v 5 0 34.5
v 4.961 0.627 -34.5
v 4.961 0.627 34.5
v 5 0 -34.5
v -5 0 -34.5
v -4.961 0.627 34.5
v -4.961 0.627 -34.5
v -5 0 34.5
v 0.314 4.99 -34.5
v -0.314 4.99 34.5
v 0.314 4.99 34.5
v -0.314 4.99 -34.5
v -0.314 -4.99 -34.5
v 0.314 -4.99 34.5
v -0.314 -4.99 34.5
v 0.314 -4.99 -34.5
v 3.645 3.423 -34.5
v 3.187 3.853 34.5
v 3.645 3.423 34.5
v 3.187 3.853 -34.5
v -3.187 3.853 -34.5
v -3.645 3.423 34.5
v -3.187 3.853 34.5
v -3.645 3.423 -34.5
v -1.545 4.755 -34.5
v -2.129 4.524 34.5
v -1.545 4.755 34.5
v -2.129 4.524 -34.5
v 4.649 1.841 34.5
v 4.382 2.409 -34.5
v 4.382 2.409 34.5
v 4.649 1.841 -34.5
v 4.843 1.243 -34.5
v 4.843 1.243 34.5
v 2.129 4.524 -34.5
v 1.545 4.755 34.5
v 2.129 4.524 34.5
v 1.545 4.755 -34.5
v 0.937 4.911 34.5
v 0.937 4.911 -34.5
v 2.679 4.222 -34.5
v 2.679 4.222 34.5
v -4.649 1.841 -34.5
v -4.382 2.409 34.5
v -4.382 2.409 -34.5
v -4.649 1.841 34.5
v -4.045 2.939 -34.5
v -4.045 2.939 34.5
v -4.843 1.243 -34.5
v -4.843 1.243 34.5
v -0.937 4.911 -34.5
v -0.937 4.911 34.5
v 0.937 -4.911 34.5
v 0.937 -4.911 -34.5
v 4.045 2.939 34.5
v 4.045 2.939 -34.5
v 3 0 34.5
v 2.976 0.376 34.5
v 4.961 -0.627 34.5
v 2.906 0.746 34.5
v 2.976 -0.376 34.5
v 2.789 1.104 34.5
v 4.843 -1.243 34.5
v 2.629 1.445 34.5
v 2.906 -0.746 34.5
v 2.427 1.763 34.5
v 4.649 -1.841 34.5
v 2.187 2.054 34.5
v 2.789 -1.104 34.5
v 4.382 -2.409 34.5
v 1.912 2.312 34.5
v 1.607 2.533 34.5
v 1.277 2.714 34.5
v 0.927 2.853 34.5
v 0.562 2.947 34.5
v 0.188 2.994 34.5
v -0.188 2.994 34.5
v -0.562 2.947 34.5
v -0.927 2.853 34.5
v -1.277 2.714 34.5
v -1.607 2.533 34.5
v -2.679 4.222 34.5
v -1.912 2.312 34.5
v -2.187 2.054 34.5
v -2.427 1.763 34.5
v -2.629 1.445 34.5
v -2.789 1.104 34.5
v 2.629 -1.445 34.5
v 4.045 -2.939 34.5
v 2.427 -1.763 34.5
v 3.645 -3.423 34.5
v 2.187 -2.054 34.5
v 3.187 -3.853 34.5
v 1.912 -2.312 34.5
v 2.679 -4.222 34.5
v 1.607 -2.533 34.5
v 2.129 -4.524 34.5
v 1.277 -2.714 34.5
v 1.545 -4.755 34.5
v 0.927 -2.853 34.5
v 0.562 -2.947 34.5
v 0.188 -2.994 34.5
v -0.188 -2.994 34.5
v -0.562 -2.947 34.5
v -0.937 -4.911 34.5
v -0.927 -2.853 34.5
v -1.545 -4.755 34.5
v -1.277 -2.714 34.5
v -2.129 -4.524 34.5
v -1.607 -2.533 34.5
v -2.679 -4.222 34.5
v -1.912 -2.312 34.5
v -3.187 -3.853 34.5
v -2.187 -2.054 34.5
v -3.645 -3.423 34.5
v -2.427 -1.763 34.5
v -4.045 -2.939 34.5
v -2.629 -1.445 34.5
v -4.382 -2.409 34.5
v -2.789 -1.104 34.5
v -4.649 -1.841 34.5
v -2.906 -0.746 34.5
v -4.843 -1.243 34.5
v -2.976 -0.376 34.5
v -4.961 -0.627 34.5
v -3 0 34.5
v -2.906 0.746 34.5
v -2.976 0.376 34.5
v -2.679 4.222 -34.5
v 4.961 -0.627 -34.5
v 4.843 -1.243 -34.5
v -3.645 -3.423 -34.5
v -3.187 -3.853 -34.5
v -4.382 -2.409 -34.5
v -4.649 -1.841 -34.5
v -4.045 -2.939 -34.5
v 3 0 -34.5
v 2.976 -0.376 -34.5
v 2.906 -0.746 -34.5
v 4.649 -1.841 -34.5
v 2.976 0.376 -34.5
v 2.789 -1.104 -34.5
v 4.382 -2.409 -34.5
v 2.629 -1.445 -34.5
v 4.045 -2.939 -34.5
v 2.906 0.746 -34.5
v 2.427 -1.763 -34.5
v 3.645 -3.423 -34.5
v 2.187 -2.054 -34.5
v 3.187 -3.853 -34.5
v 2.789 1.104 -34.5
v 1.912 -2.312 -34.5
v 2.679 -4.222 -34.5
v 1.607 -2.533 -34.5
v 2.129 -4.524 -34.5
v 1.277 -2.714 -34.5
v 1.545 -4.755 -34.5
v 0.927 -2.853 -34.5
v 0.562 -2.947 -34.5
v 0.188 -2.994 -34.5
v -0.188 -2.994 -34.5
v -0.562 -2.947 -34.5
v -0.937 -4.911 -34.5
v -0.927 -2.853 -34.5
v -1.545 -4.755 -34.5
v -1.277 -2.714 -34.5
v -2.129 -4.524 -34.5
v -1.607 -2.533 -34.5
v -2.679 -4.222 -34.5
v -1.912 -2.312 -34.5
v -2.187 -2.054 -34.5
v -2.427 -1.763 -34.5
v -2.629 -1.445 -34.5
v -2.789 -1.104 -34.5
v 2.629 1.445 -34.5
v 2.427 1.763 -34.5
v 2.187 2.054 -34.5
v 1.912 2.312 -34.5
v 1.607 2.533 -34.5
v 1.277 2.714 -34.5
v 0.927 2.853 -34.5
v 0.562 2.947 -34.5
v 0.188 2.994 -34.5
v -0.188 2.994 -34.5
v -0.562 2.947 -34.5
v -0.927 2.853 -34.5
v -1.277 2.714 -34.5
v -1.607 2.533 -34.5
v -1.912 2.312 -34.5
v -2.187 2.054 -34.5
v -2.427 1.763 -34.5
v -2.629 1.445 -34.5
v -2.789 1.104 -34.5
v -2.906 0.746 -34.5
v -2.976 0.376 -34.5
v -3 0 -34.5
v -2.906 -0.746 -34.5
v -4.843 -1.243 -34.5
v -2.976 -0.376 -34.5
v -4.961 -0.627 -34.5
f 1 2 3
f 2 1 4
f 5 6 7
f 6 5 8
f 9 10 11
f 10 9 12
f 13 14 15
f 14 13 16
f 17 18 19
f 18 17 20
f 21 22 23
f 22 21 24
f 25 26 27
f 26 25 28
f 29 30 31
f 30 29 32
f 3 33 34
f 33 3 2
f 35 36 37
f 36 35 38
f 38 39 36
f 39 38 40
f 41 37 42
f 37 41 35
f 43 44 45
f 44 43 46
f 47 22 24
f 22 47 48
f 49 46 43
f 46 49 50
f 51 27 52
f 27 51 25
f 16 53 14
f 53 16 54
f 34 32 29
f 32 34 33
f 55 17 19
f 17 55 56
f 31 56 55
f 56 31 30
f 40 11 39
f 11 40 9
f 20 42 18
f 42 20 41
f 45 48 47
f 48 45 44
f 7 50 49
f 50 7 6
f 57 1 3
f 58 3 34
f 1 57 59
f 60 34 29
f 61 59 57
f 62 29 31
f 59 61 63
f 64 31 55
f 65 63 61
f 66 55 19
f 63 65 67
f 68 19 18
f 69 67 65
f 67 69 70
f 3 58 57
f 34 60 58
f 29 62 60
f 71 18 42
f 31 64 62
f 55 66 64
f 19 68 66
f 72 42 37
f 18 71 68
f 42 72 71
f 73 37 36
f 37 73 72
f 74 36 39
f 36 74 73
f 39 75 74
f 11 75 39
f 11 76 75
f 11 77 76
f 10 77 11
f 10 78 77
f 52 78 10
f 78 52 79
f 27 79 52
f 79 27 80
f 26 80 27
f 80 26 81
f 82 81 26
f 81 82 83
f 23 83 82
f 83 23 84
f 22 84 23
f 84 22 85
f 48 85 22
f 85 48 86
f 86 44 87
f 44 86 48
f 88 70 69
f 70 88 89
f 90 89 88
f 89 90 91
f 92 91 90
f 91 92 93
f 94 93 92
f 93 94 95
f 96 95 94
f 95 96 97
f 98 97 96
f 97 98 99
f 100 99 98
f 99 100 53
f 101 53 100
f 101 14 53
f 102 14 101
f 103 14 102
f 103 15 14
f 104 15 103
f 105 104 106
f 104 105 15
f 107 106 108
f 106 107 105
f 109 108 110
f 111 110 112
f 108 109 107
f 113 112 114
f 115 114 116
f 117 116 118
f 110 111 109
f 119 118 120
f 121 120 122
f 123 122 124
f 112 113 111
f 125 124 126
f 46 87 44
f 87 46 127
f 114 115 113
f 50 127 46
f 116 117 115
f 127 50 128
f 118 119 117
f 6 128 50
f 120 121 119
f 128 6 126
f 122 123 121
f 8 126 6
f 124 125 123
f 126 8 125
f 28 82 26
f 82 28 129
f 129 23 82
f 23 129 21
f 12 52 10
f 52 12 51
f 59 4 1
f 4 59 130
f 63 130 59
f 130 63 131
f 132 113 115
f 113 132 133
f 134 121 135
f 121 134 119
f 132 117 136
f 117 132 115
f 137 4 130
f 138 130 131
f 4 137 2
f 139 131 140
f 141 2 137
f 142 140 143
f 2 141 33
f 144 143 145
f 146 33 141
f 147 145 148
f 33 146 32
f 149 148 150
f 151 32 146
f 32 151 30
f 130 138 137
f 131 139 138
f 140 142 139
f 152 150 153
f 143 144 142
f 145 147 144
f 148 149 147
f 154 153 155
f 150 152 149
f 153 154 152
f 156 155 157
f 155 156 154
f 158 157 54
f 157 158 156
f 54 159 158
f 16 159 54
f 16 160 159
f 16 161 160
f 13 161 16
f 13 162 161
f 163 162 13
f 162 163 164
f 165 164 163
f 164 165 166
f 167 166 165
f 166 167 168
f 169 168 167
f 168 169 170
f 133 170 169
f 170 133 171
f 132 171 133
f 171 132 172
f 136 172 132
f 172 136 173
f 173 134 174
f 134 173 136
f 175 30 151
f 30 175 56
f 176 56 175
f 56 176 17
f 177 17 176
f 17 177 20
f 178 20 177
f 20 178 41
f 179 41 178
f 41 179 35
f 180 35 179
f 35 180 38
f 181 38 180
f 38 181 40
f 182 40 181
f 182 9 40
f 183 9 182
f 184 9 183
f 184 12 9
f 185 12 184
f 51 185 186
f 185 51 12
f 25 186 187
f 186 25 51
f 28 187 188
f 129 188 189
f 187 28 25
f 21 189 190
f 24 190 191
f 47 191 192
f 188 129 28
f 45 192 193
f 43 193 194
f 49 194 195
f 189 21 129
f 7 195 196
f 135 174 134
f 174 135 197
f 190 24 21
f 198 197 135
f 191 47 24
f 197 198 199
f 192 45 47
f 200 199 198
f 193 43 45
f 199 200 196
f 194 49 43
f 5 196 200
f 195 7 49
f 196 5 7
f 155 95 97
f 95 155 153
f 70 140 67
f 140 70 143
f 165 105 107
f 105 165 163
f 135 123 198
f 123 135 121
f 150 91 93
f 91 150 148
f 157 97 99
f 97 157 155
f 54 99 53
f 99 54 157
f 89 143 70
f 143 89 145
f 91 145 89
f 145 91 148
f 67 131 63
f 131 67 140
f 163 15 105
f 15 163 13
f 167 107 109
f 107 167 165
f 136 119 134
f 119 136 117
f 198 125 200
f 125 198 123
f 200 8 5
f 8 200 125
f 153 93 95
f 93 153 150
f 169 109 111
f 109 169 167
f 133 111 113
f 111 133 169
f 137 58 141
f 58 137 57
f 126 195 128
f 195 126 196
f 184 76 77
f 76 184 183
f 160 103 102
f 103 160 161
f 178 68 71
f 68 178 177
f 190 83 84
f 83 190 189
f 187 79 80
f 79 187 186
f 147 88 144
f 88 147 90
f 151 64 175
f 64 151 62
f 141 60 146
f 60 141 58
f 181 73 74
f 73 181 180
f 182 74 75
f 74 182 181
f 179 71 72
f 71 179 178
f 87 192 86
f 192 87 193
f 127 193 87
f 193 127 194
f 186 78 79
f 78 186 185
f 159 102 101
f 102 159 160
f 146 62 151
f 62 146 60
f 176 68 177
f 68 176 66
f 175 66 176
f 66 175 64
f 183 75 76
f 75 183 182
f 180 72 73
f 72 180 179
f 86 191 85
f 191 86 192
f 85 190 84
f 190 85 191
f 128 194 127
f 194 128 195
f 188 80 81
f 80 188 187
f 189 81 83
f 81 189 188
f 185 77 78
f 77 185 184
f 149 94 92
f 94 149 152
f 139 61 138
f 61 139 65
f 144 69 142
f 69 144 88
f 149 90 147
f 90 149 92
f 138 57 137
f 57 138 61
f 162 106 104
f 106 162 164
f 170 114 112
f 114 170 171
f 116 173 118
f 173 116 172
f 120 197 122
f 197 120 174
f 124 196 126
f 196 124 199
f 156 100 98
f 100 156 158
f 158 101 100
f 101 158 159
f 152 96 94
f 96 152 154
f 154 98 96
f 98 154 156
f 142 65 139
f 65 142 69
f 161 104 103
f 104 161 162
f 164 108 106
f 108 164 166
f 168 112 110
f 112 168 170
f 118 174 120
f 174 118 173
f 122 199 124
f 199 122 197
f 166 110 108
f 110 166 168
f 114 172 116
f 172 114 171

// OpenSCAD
$fn = 50;


difference() {
	union() {
		translate(v = [0, 0, -34.5000000000]) {
			cylinder(h = 69, r = 5.0000000000);
		}
	}
	union() {
		translate(v = [0, 0, -100.0000000000]) {
			cylinder(h = 200, r = 3);
		}
	}
}
